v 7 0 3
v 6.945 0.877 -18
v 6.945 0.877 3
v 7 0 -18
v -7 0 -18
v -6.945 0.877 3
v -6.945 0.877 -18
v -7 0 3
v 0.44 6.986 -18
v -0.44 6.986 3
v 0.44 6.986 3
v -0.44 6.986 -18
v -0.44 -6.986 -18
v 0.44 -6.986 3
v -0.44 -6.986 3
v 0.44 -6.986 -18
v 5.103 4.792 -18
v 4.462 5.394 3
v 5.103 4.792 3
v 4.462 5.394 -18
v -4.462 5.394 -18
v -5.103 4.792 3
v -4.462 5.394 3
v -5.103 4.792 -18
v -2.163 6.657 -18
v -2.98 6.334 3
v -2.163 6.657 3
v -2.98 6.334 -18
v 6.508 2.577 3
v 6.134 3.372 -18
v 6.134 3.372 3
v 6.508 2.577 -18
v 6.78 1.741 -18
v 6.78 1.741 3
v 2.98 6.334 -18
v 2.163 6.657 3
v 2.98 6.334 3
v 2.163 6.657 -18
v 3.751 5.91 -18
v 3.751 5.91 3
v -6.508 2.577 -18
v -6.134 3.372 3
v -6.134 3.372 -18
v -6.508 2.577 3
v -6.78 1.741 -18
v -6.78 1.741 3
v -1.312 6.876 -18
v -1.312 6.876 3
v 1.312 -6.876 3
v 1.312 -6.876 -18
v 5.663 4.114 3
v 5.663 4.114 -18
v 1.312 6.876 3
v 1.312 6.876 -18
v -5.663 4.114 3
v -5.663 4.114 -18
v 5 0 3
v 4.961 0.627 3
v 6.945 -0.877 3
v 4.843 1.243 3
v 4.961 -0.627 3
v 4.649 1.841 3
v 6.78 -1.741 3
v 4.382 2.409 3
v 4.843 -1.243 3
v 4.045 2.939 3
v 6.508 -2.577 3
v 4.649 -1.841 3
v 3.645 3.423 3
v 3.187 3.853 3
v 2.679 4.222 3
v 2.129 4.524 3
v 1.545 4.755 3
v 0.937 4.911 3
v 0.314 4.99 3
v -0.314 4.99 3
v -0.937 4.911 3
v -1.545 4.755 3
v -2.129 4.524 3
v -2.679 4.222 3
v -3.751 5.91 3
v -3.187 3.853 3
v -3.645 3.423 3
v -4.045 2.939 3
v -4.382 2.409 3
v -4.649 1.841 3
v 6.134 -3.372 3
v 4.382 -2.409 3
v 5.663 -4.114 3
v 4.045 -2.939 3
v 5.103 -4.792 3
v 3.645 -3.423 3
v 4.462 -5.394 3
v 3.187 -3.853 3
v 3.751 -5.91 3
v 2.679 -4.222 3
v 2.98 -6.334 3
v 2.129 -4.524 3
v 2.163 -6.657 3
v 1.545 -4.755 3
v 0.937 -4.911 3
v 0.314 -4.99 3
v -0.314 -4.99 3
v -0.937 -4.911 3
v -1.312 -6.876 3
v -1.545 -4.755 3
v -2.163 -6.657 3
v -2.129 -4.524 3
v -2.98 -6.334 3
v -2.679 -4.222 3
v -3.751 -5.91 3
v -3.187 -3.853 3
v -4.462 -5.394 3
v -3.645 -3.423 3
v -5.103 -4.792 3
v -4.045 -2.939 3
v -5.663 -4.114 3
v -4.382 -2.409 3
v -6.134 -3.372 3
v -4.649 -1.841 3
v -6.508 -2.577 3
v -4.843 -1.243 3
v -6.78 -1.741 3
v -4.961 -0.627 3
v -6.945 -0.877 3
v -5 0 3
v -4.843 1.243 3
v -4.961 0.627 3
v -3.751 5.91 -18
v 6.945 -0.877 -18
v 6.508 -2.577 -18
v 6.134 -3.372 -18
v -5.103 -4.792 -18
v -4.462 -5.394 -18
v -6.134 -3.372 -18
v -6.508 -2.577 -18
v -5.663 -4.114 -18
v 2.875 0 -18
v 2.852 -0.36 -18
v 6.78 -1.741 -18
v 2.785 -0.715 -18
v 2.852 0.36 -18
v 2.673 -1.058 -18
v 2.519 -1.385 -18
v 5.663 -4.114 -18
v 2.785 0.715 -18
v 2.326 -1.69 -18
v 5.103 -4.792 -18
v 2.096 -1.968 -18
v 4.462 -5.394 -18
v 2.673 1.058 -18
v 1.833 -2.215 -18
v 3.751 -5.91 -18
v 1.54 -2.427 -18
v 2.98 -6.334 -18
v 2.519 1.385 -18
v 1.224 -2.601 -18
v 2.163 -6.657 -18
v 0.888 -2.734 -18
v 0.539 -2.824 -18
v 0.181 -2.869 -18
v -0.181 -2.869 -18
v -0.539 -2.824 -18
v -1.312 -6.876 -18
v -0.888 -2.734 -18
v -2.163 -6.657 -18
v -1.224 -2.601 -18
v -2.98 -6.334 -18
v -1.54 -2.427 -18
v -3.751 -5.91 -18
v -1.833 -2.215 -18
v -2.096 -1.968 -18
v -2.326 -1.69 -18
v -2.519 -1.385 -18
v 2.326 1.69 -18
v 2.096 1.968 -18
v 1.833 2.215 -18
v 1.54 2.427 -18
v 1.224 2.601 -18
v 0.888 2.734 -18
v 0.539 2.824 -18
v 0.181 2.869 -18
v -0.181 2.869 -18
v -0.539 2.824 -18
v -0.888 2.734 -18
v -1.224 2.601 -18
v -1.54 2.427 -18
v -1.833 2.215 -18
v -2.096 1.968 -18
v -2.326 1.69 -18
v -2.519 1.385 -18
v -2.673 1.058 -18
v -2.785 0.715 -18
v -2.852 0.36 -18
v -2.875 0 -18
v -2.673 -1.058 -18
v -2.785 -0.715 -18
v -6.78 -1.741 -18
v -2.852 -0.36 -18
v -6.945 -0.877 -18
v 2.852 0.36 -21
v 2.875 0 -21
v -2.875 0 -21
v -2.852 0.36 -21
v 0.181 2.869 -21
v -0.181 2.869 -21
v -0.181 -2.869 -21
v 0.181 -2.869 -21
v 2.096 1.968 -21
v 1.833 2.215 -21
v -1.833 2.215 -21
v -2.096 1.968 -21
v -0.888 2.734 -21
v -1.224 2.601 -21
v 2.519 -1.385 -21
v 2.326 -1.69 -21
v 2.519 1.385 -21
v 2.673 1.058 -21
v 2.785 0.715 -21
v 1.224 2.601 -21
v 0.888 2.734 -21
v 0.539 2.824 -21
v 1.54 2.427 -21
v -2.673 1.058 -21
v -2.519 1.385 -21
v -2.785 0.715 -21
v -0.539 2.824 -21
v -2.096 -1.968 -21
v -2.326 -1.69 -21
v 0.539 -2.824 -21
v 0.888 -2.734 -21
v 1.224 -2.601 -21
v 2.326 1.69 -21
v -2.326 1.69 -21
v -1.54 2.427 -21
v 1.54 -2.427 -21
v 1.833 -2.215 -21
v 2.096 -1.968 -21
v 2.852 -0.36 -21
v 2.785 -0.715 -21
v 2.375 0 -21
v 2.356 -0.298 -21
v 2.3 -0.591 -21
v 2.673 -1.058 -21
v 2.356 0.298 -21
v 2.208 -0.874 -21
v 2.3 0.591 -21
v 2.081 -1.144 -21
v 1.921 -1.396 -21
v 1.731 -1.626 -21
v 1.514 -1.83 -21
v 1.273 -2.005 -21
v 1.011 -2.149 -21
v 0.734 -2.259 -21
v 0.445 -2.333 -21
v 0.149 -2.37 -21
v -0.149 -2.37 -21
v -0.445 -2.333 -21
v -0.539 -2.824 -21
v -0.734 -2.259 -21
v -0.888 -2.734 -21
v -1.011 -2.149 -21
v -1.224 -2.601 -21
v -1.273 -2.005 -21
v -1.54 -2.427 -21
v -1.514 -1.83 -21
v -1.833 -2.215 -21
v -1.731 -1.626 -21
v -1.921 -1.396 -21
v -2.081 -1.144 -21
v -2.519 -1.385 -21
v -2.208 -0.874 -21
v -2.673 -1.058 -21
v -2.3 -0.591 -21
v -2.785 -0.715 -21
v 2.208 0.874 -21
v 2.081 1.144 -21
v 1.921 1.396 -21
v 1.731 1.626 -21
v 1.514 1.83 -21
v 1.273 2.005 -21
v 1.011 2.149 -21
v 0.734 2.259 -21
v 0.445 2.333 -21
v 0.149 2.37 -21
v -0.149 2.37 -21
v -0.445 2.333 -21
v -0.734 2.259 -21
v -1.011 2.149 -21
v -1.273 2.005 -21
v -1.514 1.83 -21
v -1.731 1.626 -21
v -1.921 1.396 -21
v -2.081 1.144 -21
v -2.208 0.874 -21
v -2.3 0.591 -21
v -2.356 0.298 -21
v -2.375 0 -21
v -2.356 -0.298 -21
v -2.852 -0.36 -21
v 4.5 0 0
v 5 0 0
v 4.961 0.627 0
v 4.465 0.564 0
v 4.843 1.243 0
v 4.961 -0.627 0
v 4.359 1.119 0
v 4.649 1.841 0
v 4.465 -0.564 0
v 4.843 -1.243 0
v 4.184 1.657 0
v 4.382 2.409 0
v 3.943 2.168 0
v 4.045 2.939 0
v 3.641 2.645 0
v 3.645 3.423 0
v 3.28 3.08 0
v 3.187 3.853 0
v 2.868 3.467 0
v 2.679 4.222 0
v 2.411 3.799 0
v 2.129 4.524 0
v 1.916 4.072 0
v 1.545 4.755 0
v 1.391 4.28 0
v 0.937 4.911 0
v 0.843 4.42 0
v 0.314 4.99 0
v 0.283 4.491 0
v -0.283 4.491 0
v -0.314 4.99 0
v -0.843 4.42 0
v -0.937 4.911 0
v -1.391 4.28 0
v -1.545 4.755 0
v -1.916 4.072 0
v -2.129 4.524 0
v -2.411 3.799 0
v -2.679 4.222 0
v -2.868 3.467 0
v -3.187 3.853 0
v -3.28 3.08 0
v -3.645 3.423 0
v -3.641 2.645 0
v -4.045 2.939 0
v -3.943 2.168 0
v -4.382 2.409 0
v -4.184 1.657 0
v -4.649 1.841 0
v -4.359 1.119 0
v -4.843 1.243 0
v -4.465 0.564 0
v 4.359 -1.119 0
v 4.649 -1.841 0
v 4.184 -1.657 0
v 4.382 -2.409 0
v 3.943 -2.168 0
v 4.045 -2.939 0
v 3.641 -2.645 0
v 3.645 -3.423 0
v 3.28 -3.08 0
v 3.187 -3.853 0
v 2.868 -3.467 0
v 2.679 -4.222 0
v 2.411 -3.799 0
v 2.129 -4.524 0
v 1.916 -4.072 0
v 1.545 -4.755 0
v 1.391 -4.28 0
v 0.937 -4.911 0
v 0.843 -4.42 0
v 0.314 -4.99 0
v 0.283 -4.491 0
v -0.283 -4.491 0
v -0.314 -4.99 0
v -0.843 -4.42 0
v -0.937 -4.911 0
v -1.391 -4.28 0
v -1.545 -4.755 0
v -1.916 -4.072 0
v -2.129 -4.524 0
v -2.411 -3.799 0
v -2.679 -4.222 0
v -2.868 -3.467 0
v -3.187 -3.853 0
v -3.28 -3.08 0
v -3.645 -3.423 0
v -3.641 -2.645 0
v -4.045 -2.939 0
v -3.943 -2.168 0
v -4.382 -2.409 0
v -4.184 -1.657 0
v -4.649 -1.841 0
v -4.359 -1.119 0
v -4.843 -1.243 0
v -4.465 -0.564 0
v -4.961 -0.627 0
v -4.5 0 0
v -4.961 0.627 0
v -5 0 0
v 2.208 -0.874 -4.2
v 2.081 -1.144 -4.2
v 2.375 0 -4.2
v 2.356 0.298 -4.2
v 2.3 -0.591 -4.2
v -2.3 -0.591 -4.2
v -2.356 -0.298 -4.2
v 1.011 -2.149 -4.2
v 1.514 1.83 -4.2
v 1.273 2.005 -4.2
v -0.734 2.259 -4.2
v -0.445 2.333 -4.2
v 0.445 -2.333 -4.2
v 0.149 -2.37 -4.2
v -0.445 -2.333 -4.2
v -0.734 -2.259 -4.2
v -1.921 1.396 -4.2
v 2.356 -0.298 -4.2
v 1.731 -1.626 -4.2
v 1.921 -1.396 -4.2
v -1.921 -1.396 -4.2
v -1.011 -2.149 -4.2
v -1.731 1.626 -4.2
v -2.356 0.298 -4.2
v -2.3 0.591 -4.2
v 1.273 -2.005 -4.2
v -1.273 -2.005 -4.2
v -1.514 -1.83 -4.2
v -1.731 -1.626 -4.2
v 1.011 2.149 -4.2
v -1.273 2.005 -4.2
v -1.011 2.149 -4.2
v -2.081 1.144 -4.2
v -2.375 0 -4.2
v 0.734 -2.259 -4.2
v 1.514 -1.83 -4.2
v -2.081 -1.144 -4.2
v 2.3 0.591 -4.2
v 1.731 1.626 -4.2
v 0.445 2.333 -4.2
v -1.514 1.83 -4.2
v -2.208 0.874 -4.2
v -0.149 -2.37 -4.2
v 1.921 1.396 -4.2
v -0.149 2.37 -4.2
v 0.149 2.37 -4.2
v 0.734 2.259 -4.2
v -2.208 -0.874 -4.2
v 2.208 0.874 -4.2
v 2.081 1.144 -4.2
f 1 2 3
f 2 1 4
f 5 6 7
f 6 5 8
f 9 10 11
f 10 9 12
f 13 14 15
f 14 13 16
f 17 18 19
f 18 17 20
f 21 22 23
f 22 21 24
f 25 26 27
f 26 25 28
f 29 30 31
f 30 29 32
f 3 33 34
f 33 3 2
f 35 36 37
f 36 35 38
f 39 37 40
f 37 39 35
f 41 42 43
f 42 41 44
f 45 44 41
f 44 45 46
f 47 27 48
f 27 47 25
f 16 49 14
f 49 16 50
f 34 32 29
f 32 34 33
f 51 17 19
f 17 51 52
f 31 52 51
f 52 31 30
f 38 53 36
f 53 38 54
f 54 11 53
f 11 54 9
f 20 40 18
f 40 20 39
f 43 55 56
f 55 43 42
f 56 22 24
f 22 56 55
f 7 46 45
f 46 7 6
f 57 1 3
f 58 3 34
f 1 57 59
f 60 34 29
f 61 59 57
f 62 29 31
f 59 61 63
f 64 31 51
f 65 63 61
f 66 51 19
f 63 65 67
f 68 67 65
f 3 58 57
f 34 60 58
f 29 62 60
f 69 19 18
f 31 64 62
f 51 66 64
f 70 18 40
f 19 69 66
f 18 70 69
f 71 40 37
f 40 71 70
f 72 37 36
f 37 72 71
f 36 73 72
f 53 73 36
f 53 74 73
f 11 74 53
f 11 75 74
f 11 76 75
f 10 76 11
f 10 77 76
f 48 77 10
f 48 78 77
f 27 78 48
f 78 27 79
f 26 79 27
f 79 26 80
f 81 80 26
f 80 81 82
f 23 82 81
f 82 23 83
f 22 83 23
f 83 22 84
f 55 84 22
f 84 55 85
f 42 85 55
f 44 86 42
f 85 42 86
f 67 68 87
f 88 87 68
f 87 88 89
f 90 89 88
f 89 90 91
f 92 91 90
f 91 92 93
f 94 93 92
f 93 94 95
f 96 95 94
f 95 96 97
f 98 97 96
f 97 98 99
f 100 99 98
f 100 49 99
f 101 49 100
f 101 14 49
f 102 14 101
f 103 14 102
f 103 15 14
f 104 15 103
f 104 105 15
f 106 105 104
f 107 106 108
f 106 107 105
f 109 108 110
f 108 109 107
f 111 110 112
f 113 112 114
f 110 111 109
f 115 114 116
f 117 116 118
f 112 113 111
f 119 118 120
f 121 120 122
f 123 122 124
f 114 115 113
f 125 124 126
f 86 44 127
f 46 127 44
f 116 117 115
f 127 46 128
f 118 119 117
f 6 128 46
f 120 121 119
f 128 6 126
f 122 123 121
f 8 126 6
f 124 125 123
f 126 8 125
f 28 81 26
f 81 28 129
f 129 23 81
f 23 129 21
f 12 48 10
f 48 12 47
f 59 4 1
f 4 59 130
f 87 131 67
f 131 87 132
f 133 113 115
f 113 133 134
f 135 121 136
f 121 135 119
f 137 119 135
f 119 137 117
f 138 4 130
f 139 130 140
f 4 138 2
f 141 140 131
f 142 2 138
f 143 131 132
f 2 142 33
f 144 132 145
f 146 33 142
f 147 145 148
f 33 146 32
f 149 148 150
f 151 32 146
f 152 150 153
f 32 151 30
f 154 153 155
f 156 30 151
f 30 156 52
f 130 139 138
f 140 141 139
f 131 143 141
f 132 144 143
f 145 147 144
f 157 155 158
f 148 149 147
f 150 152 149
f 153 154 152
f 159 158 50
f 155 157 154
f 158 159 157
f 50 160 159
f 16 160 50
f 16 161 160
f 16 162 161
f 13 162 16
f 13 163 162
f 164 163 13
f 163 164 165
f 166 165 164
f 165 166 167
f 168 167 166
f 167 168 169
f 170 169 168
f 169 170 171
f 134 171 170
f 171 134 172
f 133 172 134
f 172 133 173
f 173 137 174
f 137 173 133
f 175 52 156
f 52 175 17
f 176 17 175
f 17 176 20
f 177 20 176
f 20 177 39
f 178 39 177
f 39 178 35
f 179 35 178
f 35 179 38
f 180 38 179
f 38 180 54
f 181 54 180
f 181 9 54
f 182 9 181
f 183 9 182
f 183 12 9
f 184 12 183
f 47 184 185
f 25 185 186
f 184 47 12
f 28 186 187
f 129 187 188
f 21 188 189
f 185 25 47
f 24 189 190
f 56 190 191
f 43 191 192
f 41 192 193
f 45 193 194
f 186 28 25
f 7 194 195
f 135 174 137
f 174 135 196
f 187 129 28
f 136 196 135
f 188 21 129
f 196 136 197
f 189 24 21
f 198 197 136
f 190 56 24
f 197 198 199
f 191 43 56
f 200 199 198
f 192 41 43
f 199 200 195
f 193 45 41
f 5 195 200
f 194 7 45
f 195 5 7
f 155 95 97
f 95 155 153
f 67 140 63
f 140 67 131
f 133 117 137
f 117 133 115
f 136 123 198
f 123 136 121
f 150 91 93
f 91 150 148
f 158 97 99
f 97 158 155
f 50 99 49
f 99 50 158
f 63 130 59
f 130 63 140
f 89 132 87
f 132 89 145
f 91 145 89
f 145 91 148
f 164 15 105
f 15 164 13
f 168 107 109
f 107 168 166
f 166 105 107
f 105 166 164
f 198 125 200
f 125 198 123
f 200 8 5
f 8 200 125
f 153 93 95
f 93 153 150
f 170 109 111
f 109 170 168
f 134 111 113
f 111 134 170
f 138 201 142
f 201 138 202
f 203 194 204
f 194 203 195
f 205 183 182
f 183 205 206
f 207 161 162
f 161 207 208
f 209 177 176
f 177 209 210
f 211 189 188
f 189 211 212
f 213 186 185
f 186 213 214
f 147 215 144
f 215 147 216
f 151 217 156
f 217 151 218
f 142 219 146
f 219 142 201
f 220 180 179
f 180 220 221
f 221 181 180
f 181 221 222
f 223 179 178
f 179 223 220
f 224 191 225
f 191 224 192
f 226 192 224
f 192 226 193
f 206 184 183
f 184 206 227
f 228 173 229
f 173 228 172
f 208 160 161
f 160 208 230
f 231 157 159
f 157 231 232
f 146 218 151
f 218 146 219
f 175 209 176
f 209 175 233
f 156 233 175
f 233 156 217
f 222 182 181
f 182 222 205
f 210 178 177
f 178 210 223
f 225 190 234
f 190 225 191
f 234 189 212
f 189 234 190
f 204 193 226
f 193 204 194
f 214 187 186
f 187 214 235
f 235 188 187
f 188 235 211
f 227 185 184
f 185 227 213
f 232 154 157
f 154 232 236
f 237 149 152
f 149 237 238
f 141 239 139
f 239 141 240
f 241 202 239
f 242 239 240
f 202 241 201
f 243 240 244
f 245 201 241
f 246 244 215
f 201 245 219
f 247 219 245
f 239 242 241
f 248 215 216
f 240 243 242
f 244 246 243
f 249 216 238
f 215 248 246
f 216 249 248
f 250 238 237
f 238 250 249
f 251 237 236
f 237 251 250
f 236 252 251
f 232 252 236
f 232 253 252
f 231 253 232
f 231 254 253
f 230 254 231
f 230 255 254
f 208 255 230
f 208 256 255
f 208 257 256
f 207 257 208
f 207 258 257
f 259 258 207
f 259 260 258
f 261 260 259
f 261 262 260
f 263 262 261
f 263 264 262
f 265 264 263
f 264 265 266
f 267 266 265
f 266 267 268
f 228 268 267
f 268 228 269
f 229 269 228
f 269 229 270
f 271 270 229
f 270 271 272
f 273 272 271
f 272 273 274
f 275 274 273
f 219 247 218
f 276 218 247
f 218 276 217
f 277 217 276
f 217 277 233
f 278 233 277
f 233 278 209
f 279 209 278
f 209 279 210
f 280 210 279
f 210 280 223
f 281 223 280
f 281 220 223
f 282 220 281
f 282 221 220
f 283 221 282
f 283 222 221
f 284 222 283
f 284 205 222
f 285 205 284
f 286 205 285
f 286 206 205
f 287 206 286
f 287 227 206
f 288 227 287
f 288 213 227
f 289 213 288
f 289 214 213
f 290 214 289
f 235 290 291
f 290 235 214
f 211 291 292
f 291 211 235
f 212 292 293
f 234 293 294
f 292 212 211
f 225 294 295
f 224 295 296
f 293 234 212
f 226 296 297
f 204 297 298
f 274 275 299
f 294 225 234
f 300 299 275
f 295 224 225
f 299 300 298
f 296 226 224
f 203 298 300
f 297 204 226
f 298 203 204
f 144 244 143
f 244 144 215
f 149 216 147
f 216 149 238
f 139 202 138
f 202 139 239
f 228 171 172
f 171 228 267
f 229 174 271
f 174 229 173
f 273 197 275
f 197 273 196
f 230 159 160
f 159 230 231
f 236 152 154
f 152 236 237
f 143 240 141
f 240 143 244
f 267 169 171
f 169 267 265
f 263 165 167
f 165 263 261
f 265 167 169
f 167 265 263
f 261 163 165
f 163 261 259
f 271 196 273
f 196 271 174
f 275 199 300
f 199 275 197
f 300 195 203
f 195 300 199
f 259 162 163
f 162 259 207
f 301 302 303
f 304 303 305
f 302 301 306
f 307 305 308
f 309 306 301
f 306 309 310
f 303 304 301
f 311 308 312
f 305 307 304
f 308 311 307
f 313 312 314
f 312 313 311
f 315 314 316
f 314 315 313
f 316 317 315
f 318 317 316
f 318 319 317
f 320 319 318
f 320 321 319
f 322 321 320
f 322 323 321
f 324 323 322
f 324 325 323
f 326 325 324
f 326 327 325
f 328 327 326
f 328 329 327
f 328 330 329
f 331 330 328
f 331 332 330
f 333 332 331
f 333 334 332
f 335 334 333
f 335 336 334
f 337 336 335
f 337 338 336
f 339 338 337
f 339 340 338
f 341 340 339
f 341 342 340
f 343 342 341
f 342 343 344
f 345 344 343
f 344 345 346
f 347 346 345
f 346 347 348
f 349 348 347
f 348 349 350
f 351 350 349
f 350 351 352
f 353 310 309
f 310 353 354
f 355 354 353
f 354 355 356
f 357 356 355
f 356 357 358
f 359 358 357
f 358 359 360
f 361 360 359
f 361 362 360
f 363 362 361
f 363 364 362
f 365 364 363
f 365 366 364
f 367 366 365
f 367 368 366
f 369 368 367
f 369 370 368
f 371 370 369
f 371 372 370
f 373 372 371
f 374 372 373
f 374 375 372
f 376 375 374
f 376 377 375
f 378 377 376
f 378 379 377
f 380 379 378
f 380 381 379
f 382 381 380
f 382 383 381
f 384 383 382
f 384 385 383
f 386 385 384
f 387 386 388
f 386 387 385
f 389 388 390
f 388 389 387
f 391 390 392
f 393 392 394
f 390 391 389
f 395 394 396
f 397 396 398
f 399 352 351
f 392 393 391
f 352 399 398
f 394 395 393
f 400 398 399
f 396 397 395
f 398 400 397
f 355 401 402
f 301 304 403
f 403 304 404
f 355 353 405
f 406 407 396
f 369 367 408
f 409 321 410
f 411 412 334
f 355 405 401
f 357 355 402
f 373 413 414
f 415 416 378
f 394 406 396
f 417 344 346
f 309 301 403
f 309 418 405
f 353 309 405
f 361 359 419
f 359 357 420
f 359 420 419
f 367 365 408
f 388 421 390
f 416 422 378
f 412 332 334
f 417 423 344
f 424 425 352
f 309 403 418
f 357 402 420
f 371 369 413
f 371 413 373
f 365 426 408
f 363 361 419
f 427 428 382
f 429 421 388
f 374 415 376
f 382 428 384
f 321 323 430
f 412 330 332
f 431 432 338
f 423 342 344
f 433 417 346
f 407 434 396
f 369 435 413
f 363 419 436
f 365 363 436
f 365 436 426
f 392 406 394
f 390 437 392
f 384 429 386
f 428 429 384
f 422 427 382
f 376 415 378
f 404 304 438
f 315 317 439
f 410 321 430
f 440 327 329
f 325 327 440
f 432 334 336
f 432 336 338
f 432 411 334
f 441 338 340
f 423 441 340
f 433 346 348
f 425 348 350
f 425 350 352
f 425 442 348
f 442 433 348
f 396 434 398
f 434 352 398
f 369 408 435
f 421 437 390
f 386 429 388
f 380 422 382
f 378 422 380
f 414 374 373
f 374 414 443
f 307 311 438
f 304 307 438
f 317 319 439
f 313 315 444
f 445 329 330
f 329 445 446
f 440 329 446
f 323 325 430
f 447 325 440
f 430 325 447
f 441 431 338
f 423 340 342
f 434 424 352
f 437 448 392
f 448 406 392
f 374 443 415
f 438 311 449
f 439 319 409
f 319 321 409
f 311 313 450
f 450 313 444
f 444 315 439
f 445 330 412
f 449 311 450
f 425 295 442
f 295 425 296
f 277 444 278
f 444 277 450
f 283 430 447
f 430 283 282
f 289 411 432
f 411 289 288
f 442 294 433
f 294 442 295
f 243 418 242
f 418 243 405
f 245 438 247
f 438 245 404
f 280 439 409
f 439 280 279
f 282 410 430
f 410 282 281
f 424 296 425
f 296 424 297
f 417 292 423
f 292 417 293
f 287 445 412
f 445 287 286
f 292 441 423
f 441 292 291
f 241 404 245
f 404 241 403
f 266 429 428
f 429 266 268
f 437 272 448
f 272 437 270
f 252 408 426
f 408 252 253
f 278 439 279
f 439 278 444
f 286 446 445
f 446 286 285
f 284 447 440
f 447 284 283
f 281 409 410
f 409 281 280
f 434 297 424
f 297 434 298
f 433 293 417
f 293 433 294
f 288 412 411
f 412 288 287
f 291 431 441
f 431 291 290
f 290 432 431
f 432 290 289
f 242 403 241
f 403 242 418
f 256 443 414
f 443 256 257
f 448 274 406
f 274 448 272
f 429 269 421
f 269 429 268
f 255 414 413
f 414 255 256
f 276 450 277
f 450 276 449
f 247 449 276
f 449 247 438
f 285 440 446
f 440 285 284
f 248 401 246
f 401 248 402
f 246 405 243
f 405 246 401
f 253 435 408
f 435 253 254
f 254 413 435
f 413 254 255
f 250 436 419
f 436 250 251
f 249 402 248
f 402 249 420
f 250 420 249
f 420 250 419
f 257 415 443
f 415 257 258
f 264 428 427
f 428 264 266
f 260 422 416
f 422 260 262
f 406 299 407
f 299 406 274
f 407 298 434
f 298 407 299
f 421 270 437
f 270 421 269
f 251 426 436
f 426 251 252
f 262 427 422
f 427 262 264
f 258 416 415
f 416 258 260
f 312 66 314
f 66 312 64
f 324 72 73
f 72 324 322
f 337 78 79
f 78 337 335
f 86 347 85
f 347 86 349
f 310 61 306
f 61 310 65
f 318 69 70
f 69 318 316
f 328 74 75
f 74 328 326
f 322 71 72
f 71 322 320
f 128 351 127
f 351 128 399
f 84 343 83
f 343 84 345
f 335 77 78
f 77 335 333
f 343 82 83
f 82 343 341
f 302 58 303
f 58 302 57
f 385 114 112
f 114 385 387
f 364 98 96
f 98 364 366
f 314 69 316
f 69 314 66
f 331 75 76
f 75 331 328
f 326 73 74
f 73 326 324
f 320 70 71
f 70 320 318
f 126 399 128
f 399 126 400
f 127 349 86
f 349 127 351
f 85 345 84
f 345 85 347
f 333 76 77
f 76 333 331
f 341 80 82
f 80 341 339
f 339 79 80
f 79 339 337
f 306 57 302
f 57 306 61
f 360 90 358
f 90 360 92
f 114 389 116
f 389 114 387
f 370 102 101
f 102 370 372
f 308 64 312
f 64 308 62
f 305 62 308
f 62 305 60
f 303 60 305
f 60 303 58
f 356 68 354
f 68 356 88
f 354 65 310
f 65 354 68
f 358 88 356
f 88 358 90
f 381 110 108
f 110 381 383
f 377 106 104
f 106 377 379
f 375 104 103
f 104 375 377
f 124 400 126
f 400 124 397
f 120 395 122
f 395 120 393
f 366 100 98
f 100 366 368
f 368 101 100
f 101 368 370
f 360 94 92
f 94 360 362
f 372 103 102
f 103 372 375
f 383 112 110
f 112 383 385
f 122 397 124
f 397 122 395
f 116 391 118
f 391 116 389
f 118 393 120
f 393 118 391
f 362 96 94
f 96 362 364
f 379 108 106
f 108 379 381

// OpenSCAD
$fn = 50;

difference() {
	union() {
		translate(v = [0, 0, -18.0]) {
			cylinder(h = 21, r = 7.0);
		}
		#translate(v = [0, 0, -21.0]) {
			cylinder(h = 21, r = 2.875);
		}
	}
	union() {
		translate(v = [0, 0, 0]) {
			rotate(a = [0, 0, 0]) {
				difference() {
					union() {
						translate(v = [0, 0, -21.0]) {
							cylinder(h = 21, r = 2.25);
						}
						translate(v = [0, 0, -4.2]) {
							cylinder(h = 4.2, r1 = 2.375, r2 = 4.5);
						}
						translate(v = [0, 0, -21.0]) {
							cylinder(h = 21, r = 2.375);
						}
						translate(v = [0, 0, -21.0]) {
							cylinder(h = 21, r = 2.25);
						}
					}
					union();
				}
			}
		}
		#cylinder(h = 3, r = 5.0);
	}
}
